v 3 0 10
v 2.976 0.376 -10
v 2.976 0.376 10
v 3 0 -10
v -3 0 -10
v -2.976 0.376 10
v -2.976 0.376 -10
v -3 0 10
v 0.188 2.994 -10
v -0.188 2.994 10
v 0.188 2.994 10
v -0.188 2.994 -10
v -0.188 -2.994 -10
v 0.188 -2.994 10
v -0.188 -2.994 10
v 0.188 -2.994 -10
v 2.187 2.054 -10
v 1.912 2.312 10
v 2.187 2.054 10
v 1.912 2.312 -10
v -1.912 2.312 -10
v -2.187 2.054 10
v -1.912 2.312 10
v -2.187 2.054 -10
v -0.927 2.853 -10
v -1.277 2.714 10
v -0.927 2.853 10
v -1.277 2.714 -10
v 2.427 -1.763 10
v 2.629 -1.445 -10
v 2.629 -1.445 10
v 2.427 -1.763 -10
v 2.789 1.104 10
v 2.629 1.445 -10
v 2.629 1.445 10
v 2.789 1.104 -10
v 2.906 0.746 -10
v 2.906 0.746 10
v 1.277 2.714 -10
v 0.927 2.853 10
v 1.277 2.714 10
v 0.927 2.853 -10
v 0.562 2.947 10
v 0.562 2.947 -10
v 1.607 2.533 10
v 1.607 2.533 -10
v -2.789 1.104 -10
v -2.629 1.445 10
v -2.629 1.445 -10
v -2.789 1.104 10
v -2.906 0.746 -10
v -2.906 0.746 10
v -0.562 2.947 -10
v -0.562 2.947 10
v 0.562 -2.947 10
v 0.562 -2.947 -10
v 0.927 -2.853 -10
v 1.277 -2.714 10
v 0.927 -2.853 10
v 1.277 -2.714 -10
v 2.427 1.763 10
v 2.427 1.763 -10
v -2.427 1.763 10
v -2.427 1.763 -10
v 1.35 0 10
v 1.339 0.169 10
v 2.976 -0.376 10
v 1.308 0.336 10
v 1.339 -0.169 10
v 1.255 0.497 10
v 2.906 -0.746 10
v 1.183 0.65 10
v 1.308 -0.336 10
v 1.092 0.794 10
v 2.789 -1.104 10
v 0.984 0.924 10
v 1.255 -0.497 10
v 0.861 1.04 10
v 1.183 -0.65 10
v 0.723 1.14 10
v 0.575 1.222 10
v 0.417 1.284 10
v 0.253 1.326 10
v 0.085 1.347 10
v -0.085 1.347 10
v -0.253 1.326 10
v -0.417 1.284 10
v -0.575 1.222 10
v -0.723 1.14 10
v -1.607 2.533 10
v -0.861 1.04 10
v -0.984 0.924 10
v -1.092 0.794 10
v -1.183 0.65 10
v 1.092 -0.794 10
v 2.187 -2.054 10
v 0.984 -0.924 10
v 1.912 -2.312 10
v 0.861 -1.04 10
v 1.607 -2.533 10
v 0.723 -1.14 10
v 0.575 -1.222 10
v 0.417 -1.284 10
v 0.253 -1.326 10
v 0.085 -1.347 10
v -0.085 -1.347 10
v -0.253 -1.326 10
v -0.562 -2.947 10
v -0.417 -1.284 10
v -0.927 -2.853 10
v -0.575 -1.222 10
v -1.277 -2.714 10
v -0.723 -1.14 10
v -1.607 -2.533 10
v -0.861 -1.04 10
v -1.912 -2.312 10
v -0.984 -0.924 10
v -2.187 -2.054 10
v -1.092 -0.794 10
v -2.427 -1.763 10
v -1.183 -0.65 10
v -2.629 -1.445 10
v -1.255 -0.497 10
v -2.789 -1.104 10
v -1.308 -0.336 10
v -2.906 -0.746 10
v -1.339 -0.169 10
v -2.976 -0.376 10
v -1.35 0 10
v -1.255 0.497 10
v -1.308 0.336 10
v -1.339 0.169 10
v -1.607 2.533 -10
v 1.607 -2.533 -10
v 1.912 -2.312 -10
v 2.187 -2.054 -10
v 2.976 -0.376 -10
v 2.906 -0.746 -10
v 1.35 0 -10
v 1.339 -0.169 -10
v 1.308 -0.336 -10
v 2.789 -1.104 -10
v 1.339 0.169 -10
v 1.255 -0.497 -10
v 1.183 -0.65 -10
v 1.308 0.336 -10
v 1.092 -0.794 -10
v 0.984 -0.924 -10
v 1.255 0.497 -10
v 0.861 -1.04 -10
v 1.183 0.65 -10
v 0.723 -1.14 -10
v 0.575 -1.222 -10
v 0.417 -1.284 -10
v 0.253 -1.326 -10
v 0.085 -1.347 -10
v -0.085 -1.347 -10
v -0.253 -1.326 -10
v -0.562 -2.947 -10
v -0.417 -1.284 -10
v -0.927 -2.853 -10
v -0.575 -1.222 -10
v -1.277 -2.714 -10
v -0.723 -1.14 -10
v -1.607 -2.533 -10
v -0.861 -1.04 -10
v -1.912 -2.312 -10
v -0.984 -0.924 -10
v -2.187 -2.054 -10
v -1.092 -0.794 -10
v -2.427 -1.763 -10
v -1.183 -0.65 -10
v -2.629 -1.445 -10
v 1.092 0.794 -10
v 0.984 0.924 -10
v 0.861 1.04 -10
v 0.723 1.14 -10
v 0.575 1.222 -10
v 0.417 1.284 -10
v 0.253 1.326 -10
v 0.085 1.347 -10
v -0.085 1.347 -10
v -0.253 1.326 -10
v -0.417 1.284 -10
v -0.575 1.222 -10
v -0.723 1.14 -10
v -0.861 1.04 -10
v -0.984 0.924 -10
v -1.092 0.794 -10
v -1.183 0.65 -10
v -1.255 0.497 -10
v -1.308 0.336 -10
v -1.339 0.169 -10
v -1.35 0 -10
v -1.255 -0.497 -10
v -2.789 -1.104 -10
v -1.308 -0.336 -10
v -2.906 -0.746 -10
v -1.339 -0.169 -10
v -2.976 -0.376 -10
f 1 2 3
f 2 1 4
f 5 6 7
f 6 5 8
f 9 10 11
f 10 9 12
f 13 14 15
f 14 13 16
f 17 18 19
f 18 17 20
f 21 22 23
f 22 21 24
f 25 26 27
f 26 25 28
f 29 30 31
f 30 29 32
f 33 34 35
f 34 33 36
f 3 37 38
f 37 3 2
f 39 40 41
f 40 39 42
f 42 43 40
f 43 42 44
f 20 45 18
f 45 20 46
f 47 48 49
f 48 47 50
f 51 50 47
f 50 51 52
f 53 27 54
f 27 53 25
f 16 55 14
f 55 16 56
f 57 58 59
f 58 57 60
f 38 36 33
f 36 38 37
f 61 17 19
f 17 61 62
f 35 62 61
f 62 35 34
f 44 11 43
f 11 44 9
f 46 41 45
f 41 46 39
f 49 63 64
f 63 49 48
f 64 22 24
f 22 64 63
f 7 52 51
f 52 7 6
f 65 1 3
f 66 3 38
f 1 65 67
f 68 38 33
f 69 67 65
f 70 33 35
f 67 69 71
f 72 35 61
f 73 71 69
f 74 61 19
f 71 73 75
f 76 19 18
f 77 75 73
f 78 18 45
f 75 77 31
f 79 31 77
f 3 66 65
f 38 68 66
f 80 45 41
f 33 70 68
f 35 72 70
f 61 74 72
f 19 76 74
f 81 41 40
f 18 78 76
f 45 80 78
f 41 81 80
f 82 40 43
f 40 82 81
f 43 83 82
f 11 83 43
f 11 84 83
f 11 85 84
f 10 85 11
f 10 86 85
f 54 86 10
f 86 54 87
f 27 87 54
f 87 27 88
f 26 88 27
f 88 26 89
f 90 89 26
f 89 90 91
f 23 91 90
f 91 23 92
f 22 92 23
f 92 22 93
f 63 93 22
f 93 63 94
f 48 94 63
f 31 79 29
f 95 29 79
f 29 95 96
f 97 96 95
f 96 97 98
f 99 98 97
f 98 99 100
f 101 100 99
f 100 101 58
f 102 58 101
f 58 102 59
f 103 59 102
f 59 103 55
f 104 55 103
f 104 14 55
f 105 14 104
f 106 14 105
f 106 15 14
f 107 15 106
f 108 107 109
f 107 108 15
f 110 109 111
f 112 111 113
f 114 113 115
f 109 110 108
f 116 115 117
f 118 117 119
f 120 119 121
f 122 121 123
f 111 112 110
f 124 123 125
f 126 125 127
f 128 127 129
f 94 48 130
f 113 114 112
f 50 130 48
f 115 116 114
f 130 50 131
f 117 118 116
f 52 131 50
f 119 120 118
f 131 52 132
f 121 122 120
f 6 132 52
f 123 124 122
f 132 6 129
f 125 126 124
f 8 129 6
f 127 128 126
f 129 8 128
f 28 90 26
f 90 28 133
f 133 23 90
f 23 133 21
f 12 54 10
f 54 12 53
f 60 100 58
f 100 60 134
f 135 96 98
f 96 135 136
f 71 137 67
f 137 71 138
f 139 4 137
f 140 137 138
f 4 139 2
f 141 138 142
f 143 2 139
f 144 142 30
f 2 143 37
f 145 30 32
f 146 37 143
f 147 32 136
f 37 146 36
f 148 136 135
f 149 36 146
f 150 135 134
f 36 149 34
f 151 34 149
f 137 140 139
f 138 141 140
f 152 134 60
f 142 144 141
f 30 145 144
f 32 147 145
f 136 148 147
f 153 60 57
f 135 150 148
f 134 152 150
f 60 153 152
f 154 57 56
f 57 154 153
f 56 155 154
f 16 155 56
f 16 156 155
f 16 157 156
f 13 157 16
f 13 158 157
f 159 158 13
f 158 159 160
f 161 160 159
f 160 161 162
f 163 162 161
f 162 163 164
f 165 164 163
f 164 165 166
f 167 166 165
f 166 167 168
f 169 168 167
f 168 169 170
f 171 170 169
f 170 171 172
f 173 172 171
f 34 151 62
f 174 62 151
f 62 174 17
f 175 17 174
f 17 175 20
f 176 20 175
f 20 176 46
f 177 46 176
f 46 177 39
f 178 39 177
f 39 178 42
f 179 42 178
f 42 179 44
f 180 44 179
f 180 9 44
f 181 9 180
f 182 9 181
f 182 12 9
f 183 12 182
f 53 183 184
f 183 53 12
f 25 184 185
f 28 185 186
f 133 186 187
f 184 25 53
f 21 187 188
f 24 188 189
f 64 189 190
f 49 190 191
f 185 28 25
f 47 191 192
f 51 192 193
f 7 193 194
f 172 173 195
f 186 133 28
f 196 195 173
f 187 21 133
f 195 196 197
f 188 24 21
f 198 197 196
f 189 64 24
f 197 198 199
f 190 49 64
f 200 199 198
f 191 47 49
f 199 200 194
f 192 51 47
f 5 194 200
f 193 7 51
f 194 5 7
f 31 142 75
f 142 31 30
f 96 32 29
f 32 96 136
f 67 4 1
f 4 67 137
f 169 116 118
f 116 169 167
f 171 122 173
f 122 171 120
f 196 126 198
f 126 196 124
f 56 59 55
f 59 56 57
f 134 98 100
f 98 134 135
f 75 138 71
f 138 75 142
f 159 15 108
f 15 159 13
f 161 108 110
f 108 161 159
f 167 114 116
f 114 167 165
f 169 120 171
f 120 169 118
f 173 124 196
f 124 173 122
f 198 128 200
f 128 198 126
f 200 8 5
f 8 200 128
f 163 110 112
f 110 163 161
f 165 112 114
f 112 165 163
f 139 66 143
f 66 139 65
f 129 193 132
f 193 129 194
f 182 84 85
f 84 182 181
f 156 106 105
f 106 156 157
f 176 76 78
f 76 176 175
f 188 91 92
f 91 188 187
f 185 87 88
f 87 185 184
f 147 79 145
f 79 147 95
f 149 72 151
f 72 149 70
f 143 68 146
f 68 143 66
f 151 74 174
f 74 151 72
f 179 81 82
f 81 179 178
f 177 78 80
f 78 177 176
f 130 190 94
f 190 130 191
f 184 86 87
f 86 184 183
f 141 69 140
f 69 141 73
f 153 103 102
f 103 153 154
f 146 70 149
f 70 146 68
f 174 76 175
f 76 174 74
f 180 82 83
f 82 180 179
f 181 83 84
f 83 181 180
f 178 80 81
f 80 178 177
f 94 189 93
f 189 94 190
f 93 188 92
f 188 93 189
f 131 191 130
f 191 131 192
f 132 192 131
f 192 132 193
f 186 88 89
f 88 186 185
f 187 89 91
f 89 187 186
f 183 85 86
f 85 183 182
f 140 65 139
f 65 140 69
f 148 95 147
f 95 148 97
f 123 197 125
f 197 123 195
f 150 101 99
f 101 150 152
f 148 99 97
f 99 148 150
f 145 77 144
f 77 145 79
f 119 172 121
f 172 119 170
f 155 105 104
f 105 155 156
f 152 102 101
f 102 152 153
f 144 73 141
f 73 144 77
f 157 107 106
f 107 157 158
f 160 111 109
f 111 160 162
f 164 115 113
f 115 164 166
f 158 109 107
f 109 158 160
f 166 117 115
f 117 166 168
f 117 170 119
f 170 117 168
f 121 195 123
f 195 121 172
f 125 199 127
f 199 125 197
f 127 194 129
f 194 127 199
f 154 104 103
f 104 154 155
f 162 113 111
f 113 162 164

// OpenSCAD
$fn = 50;


difference() {
	union() {
		translate(v = [0, 0, -10.0000000000]) {
			cylinder(h = 20, r = 3.0000000000);
		}
	}
	union() {
		translate(v = [0, 0, -100.0000000000]) {
			cylinder(h = 200, r = 1.3500000000);
		}
	}
}
